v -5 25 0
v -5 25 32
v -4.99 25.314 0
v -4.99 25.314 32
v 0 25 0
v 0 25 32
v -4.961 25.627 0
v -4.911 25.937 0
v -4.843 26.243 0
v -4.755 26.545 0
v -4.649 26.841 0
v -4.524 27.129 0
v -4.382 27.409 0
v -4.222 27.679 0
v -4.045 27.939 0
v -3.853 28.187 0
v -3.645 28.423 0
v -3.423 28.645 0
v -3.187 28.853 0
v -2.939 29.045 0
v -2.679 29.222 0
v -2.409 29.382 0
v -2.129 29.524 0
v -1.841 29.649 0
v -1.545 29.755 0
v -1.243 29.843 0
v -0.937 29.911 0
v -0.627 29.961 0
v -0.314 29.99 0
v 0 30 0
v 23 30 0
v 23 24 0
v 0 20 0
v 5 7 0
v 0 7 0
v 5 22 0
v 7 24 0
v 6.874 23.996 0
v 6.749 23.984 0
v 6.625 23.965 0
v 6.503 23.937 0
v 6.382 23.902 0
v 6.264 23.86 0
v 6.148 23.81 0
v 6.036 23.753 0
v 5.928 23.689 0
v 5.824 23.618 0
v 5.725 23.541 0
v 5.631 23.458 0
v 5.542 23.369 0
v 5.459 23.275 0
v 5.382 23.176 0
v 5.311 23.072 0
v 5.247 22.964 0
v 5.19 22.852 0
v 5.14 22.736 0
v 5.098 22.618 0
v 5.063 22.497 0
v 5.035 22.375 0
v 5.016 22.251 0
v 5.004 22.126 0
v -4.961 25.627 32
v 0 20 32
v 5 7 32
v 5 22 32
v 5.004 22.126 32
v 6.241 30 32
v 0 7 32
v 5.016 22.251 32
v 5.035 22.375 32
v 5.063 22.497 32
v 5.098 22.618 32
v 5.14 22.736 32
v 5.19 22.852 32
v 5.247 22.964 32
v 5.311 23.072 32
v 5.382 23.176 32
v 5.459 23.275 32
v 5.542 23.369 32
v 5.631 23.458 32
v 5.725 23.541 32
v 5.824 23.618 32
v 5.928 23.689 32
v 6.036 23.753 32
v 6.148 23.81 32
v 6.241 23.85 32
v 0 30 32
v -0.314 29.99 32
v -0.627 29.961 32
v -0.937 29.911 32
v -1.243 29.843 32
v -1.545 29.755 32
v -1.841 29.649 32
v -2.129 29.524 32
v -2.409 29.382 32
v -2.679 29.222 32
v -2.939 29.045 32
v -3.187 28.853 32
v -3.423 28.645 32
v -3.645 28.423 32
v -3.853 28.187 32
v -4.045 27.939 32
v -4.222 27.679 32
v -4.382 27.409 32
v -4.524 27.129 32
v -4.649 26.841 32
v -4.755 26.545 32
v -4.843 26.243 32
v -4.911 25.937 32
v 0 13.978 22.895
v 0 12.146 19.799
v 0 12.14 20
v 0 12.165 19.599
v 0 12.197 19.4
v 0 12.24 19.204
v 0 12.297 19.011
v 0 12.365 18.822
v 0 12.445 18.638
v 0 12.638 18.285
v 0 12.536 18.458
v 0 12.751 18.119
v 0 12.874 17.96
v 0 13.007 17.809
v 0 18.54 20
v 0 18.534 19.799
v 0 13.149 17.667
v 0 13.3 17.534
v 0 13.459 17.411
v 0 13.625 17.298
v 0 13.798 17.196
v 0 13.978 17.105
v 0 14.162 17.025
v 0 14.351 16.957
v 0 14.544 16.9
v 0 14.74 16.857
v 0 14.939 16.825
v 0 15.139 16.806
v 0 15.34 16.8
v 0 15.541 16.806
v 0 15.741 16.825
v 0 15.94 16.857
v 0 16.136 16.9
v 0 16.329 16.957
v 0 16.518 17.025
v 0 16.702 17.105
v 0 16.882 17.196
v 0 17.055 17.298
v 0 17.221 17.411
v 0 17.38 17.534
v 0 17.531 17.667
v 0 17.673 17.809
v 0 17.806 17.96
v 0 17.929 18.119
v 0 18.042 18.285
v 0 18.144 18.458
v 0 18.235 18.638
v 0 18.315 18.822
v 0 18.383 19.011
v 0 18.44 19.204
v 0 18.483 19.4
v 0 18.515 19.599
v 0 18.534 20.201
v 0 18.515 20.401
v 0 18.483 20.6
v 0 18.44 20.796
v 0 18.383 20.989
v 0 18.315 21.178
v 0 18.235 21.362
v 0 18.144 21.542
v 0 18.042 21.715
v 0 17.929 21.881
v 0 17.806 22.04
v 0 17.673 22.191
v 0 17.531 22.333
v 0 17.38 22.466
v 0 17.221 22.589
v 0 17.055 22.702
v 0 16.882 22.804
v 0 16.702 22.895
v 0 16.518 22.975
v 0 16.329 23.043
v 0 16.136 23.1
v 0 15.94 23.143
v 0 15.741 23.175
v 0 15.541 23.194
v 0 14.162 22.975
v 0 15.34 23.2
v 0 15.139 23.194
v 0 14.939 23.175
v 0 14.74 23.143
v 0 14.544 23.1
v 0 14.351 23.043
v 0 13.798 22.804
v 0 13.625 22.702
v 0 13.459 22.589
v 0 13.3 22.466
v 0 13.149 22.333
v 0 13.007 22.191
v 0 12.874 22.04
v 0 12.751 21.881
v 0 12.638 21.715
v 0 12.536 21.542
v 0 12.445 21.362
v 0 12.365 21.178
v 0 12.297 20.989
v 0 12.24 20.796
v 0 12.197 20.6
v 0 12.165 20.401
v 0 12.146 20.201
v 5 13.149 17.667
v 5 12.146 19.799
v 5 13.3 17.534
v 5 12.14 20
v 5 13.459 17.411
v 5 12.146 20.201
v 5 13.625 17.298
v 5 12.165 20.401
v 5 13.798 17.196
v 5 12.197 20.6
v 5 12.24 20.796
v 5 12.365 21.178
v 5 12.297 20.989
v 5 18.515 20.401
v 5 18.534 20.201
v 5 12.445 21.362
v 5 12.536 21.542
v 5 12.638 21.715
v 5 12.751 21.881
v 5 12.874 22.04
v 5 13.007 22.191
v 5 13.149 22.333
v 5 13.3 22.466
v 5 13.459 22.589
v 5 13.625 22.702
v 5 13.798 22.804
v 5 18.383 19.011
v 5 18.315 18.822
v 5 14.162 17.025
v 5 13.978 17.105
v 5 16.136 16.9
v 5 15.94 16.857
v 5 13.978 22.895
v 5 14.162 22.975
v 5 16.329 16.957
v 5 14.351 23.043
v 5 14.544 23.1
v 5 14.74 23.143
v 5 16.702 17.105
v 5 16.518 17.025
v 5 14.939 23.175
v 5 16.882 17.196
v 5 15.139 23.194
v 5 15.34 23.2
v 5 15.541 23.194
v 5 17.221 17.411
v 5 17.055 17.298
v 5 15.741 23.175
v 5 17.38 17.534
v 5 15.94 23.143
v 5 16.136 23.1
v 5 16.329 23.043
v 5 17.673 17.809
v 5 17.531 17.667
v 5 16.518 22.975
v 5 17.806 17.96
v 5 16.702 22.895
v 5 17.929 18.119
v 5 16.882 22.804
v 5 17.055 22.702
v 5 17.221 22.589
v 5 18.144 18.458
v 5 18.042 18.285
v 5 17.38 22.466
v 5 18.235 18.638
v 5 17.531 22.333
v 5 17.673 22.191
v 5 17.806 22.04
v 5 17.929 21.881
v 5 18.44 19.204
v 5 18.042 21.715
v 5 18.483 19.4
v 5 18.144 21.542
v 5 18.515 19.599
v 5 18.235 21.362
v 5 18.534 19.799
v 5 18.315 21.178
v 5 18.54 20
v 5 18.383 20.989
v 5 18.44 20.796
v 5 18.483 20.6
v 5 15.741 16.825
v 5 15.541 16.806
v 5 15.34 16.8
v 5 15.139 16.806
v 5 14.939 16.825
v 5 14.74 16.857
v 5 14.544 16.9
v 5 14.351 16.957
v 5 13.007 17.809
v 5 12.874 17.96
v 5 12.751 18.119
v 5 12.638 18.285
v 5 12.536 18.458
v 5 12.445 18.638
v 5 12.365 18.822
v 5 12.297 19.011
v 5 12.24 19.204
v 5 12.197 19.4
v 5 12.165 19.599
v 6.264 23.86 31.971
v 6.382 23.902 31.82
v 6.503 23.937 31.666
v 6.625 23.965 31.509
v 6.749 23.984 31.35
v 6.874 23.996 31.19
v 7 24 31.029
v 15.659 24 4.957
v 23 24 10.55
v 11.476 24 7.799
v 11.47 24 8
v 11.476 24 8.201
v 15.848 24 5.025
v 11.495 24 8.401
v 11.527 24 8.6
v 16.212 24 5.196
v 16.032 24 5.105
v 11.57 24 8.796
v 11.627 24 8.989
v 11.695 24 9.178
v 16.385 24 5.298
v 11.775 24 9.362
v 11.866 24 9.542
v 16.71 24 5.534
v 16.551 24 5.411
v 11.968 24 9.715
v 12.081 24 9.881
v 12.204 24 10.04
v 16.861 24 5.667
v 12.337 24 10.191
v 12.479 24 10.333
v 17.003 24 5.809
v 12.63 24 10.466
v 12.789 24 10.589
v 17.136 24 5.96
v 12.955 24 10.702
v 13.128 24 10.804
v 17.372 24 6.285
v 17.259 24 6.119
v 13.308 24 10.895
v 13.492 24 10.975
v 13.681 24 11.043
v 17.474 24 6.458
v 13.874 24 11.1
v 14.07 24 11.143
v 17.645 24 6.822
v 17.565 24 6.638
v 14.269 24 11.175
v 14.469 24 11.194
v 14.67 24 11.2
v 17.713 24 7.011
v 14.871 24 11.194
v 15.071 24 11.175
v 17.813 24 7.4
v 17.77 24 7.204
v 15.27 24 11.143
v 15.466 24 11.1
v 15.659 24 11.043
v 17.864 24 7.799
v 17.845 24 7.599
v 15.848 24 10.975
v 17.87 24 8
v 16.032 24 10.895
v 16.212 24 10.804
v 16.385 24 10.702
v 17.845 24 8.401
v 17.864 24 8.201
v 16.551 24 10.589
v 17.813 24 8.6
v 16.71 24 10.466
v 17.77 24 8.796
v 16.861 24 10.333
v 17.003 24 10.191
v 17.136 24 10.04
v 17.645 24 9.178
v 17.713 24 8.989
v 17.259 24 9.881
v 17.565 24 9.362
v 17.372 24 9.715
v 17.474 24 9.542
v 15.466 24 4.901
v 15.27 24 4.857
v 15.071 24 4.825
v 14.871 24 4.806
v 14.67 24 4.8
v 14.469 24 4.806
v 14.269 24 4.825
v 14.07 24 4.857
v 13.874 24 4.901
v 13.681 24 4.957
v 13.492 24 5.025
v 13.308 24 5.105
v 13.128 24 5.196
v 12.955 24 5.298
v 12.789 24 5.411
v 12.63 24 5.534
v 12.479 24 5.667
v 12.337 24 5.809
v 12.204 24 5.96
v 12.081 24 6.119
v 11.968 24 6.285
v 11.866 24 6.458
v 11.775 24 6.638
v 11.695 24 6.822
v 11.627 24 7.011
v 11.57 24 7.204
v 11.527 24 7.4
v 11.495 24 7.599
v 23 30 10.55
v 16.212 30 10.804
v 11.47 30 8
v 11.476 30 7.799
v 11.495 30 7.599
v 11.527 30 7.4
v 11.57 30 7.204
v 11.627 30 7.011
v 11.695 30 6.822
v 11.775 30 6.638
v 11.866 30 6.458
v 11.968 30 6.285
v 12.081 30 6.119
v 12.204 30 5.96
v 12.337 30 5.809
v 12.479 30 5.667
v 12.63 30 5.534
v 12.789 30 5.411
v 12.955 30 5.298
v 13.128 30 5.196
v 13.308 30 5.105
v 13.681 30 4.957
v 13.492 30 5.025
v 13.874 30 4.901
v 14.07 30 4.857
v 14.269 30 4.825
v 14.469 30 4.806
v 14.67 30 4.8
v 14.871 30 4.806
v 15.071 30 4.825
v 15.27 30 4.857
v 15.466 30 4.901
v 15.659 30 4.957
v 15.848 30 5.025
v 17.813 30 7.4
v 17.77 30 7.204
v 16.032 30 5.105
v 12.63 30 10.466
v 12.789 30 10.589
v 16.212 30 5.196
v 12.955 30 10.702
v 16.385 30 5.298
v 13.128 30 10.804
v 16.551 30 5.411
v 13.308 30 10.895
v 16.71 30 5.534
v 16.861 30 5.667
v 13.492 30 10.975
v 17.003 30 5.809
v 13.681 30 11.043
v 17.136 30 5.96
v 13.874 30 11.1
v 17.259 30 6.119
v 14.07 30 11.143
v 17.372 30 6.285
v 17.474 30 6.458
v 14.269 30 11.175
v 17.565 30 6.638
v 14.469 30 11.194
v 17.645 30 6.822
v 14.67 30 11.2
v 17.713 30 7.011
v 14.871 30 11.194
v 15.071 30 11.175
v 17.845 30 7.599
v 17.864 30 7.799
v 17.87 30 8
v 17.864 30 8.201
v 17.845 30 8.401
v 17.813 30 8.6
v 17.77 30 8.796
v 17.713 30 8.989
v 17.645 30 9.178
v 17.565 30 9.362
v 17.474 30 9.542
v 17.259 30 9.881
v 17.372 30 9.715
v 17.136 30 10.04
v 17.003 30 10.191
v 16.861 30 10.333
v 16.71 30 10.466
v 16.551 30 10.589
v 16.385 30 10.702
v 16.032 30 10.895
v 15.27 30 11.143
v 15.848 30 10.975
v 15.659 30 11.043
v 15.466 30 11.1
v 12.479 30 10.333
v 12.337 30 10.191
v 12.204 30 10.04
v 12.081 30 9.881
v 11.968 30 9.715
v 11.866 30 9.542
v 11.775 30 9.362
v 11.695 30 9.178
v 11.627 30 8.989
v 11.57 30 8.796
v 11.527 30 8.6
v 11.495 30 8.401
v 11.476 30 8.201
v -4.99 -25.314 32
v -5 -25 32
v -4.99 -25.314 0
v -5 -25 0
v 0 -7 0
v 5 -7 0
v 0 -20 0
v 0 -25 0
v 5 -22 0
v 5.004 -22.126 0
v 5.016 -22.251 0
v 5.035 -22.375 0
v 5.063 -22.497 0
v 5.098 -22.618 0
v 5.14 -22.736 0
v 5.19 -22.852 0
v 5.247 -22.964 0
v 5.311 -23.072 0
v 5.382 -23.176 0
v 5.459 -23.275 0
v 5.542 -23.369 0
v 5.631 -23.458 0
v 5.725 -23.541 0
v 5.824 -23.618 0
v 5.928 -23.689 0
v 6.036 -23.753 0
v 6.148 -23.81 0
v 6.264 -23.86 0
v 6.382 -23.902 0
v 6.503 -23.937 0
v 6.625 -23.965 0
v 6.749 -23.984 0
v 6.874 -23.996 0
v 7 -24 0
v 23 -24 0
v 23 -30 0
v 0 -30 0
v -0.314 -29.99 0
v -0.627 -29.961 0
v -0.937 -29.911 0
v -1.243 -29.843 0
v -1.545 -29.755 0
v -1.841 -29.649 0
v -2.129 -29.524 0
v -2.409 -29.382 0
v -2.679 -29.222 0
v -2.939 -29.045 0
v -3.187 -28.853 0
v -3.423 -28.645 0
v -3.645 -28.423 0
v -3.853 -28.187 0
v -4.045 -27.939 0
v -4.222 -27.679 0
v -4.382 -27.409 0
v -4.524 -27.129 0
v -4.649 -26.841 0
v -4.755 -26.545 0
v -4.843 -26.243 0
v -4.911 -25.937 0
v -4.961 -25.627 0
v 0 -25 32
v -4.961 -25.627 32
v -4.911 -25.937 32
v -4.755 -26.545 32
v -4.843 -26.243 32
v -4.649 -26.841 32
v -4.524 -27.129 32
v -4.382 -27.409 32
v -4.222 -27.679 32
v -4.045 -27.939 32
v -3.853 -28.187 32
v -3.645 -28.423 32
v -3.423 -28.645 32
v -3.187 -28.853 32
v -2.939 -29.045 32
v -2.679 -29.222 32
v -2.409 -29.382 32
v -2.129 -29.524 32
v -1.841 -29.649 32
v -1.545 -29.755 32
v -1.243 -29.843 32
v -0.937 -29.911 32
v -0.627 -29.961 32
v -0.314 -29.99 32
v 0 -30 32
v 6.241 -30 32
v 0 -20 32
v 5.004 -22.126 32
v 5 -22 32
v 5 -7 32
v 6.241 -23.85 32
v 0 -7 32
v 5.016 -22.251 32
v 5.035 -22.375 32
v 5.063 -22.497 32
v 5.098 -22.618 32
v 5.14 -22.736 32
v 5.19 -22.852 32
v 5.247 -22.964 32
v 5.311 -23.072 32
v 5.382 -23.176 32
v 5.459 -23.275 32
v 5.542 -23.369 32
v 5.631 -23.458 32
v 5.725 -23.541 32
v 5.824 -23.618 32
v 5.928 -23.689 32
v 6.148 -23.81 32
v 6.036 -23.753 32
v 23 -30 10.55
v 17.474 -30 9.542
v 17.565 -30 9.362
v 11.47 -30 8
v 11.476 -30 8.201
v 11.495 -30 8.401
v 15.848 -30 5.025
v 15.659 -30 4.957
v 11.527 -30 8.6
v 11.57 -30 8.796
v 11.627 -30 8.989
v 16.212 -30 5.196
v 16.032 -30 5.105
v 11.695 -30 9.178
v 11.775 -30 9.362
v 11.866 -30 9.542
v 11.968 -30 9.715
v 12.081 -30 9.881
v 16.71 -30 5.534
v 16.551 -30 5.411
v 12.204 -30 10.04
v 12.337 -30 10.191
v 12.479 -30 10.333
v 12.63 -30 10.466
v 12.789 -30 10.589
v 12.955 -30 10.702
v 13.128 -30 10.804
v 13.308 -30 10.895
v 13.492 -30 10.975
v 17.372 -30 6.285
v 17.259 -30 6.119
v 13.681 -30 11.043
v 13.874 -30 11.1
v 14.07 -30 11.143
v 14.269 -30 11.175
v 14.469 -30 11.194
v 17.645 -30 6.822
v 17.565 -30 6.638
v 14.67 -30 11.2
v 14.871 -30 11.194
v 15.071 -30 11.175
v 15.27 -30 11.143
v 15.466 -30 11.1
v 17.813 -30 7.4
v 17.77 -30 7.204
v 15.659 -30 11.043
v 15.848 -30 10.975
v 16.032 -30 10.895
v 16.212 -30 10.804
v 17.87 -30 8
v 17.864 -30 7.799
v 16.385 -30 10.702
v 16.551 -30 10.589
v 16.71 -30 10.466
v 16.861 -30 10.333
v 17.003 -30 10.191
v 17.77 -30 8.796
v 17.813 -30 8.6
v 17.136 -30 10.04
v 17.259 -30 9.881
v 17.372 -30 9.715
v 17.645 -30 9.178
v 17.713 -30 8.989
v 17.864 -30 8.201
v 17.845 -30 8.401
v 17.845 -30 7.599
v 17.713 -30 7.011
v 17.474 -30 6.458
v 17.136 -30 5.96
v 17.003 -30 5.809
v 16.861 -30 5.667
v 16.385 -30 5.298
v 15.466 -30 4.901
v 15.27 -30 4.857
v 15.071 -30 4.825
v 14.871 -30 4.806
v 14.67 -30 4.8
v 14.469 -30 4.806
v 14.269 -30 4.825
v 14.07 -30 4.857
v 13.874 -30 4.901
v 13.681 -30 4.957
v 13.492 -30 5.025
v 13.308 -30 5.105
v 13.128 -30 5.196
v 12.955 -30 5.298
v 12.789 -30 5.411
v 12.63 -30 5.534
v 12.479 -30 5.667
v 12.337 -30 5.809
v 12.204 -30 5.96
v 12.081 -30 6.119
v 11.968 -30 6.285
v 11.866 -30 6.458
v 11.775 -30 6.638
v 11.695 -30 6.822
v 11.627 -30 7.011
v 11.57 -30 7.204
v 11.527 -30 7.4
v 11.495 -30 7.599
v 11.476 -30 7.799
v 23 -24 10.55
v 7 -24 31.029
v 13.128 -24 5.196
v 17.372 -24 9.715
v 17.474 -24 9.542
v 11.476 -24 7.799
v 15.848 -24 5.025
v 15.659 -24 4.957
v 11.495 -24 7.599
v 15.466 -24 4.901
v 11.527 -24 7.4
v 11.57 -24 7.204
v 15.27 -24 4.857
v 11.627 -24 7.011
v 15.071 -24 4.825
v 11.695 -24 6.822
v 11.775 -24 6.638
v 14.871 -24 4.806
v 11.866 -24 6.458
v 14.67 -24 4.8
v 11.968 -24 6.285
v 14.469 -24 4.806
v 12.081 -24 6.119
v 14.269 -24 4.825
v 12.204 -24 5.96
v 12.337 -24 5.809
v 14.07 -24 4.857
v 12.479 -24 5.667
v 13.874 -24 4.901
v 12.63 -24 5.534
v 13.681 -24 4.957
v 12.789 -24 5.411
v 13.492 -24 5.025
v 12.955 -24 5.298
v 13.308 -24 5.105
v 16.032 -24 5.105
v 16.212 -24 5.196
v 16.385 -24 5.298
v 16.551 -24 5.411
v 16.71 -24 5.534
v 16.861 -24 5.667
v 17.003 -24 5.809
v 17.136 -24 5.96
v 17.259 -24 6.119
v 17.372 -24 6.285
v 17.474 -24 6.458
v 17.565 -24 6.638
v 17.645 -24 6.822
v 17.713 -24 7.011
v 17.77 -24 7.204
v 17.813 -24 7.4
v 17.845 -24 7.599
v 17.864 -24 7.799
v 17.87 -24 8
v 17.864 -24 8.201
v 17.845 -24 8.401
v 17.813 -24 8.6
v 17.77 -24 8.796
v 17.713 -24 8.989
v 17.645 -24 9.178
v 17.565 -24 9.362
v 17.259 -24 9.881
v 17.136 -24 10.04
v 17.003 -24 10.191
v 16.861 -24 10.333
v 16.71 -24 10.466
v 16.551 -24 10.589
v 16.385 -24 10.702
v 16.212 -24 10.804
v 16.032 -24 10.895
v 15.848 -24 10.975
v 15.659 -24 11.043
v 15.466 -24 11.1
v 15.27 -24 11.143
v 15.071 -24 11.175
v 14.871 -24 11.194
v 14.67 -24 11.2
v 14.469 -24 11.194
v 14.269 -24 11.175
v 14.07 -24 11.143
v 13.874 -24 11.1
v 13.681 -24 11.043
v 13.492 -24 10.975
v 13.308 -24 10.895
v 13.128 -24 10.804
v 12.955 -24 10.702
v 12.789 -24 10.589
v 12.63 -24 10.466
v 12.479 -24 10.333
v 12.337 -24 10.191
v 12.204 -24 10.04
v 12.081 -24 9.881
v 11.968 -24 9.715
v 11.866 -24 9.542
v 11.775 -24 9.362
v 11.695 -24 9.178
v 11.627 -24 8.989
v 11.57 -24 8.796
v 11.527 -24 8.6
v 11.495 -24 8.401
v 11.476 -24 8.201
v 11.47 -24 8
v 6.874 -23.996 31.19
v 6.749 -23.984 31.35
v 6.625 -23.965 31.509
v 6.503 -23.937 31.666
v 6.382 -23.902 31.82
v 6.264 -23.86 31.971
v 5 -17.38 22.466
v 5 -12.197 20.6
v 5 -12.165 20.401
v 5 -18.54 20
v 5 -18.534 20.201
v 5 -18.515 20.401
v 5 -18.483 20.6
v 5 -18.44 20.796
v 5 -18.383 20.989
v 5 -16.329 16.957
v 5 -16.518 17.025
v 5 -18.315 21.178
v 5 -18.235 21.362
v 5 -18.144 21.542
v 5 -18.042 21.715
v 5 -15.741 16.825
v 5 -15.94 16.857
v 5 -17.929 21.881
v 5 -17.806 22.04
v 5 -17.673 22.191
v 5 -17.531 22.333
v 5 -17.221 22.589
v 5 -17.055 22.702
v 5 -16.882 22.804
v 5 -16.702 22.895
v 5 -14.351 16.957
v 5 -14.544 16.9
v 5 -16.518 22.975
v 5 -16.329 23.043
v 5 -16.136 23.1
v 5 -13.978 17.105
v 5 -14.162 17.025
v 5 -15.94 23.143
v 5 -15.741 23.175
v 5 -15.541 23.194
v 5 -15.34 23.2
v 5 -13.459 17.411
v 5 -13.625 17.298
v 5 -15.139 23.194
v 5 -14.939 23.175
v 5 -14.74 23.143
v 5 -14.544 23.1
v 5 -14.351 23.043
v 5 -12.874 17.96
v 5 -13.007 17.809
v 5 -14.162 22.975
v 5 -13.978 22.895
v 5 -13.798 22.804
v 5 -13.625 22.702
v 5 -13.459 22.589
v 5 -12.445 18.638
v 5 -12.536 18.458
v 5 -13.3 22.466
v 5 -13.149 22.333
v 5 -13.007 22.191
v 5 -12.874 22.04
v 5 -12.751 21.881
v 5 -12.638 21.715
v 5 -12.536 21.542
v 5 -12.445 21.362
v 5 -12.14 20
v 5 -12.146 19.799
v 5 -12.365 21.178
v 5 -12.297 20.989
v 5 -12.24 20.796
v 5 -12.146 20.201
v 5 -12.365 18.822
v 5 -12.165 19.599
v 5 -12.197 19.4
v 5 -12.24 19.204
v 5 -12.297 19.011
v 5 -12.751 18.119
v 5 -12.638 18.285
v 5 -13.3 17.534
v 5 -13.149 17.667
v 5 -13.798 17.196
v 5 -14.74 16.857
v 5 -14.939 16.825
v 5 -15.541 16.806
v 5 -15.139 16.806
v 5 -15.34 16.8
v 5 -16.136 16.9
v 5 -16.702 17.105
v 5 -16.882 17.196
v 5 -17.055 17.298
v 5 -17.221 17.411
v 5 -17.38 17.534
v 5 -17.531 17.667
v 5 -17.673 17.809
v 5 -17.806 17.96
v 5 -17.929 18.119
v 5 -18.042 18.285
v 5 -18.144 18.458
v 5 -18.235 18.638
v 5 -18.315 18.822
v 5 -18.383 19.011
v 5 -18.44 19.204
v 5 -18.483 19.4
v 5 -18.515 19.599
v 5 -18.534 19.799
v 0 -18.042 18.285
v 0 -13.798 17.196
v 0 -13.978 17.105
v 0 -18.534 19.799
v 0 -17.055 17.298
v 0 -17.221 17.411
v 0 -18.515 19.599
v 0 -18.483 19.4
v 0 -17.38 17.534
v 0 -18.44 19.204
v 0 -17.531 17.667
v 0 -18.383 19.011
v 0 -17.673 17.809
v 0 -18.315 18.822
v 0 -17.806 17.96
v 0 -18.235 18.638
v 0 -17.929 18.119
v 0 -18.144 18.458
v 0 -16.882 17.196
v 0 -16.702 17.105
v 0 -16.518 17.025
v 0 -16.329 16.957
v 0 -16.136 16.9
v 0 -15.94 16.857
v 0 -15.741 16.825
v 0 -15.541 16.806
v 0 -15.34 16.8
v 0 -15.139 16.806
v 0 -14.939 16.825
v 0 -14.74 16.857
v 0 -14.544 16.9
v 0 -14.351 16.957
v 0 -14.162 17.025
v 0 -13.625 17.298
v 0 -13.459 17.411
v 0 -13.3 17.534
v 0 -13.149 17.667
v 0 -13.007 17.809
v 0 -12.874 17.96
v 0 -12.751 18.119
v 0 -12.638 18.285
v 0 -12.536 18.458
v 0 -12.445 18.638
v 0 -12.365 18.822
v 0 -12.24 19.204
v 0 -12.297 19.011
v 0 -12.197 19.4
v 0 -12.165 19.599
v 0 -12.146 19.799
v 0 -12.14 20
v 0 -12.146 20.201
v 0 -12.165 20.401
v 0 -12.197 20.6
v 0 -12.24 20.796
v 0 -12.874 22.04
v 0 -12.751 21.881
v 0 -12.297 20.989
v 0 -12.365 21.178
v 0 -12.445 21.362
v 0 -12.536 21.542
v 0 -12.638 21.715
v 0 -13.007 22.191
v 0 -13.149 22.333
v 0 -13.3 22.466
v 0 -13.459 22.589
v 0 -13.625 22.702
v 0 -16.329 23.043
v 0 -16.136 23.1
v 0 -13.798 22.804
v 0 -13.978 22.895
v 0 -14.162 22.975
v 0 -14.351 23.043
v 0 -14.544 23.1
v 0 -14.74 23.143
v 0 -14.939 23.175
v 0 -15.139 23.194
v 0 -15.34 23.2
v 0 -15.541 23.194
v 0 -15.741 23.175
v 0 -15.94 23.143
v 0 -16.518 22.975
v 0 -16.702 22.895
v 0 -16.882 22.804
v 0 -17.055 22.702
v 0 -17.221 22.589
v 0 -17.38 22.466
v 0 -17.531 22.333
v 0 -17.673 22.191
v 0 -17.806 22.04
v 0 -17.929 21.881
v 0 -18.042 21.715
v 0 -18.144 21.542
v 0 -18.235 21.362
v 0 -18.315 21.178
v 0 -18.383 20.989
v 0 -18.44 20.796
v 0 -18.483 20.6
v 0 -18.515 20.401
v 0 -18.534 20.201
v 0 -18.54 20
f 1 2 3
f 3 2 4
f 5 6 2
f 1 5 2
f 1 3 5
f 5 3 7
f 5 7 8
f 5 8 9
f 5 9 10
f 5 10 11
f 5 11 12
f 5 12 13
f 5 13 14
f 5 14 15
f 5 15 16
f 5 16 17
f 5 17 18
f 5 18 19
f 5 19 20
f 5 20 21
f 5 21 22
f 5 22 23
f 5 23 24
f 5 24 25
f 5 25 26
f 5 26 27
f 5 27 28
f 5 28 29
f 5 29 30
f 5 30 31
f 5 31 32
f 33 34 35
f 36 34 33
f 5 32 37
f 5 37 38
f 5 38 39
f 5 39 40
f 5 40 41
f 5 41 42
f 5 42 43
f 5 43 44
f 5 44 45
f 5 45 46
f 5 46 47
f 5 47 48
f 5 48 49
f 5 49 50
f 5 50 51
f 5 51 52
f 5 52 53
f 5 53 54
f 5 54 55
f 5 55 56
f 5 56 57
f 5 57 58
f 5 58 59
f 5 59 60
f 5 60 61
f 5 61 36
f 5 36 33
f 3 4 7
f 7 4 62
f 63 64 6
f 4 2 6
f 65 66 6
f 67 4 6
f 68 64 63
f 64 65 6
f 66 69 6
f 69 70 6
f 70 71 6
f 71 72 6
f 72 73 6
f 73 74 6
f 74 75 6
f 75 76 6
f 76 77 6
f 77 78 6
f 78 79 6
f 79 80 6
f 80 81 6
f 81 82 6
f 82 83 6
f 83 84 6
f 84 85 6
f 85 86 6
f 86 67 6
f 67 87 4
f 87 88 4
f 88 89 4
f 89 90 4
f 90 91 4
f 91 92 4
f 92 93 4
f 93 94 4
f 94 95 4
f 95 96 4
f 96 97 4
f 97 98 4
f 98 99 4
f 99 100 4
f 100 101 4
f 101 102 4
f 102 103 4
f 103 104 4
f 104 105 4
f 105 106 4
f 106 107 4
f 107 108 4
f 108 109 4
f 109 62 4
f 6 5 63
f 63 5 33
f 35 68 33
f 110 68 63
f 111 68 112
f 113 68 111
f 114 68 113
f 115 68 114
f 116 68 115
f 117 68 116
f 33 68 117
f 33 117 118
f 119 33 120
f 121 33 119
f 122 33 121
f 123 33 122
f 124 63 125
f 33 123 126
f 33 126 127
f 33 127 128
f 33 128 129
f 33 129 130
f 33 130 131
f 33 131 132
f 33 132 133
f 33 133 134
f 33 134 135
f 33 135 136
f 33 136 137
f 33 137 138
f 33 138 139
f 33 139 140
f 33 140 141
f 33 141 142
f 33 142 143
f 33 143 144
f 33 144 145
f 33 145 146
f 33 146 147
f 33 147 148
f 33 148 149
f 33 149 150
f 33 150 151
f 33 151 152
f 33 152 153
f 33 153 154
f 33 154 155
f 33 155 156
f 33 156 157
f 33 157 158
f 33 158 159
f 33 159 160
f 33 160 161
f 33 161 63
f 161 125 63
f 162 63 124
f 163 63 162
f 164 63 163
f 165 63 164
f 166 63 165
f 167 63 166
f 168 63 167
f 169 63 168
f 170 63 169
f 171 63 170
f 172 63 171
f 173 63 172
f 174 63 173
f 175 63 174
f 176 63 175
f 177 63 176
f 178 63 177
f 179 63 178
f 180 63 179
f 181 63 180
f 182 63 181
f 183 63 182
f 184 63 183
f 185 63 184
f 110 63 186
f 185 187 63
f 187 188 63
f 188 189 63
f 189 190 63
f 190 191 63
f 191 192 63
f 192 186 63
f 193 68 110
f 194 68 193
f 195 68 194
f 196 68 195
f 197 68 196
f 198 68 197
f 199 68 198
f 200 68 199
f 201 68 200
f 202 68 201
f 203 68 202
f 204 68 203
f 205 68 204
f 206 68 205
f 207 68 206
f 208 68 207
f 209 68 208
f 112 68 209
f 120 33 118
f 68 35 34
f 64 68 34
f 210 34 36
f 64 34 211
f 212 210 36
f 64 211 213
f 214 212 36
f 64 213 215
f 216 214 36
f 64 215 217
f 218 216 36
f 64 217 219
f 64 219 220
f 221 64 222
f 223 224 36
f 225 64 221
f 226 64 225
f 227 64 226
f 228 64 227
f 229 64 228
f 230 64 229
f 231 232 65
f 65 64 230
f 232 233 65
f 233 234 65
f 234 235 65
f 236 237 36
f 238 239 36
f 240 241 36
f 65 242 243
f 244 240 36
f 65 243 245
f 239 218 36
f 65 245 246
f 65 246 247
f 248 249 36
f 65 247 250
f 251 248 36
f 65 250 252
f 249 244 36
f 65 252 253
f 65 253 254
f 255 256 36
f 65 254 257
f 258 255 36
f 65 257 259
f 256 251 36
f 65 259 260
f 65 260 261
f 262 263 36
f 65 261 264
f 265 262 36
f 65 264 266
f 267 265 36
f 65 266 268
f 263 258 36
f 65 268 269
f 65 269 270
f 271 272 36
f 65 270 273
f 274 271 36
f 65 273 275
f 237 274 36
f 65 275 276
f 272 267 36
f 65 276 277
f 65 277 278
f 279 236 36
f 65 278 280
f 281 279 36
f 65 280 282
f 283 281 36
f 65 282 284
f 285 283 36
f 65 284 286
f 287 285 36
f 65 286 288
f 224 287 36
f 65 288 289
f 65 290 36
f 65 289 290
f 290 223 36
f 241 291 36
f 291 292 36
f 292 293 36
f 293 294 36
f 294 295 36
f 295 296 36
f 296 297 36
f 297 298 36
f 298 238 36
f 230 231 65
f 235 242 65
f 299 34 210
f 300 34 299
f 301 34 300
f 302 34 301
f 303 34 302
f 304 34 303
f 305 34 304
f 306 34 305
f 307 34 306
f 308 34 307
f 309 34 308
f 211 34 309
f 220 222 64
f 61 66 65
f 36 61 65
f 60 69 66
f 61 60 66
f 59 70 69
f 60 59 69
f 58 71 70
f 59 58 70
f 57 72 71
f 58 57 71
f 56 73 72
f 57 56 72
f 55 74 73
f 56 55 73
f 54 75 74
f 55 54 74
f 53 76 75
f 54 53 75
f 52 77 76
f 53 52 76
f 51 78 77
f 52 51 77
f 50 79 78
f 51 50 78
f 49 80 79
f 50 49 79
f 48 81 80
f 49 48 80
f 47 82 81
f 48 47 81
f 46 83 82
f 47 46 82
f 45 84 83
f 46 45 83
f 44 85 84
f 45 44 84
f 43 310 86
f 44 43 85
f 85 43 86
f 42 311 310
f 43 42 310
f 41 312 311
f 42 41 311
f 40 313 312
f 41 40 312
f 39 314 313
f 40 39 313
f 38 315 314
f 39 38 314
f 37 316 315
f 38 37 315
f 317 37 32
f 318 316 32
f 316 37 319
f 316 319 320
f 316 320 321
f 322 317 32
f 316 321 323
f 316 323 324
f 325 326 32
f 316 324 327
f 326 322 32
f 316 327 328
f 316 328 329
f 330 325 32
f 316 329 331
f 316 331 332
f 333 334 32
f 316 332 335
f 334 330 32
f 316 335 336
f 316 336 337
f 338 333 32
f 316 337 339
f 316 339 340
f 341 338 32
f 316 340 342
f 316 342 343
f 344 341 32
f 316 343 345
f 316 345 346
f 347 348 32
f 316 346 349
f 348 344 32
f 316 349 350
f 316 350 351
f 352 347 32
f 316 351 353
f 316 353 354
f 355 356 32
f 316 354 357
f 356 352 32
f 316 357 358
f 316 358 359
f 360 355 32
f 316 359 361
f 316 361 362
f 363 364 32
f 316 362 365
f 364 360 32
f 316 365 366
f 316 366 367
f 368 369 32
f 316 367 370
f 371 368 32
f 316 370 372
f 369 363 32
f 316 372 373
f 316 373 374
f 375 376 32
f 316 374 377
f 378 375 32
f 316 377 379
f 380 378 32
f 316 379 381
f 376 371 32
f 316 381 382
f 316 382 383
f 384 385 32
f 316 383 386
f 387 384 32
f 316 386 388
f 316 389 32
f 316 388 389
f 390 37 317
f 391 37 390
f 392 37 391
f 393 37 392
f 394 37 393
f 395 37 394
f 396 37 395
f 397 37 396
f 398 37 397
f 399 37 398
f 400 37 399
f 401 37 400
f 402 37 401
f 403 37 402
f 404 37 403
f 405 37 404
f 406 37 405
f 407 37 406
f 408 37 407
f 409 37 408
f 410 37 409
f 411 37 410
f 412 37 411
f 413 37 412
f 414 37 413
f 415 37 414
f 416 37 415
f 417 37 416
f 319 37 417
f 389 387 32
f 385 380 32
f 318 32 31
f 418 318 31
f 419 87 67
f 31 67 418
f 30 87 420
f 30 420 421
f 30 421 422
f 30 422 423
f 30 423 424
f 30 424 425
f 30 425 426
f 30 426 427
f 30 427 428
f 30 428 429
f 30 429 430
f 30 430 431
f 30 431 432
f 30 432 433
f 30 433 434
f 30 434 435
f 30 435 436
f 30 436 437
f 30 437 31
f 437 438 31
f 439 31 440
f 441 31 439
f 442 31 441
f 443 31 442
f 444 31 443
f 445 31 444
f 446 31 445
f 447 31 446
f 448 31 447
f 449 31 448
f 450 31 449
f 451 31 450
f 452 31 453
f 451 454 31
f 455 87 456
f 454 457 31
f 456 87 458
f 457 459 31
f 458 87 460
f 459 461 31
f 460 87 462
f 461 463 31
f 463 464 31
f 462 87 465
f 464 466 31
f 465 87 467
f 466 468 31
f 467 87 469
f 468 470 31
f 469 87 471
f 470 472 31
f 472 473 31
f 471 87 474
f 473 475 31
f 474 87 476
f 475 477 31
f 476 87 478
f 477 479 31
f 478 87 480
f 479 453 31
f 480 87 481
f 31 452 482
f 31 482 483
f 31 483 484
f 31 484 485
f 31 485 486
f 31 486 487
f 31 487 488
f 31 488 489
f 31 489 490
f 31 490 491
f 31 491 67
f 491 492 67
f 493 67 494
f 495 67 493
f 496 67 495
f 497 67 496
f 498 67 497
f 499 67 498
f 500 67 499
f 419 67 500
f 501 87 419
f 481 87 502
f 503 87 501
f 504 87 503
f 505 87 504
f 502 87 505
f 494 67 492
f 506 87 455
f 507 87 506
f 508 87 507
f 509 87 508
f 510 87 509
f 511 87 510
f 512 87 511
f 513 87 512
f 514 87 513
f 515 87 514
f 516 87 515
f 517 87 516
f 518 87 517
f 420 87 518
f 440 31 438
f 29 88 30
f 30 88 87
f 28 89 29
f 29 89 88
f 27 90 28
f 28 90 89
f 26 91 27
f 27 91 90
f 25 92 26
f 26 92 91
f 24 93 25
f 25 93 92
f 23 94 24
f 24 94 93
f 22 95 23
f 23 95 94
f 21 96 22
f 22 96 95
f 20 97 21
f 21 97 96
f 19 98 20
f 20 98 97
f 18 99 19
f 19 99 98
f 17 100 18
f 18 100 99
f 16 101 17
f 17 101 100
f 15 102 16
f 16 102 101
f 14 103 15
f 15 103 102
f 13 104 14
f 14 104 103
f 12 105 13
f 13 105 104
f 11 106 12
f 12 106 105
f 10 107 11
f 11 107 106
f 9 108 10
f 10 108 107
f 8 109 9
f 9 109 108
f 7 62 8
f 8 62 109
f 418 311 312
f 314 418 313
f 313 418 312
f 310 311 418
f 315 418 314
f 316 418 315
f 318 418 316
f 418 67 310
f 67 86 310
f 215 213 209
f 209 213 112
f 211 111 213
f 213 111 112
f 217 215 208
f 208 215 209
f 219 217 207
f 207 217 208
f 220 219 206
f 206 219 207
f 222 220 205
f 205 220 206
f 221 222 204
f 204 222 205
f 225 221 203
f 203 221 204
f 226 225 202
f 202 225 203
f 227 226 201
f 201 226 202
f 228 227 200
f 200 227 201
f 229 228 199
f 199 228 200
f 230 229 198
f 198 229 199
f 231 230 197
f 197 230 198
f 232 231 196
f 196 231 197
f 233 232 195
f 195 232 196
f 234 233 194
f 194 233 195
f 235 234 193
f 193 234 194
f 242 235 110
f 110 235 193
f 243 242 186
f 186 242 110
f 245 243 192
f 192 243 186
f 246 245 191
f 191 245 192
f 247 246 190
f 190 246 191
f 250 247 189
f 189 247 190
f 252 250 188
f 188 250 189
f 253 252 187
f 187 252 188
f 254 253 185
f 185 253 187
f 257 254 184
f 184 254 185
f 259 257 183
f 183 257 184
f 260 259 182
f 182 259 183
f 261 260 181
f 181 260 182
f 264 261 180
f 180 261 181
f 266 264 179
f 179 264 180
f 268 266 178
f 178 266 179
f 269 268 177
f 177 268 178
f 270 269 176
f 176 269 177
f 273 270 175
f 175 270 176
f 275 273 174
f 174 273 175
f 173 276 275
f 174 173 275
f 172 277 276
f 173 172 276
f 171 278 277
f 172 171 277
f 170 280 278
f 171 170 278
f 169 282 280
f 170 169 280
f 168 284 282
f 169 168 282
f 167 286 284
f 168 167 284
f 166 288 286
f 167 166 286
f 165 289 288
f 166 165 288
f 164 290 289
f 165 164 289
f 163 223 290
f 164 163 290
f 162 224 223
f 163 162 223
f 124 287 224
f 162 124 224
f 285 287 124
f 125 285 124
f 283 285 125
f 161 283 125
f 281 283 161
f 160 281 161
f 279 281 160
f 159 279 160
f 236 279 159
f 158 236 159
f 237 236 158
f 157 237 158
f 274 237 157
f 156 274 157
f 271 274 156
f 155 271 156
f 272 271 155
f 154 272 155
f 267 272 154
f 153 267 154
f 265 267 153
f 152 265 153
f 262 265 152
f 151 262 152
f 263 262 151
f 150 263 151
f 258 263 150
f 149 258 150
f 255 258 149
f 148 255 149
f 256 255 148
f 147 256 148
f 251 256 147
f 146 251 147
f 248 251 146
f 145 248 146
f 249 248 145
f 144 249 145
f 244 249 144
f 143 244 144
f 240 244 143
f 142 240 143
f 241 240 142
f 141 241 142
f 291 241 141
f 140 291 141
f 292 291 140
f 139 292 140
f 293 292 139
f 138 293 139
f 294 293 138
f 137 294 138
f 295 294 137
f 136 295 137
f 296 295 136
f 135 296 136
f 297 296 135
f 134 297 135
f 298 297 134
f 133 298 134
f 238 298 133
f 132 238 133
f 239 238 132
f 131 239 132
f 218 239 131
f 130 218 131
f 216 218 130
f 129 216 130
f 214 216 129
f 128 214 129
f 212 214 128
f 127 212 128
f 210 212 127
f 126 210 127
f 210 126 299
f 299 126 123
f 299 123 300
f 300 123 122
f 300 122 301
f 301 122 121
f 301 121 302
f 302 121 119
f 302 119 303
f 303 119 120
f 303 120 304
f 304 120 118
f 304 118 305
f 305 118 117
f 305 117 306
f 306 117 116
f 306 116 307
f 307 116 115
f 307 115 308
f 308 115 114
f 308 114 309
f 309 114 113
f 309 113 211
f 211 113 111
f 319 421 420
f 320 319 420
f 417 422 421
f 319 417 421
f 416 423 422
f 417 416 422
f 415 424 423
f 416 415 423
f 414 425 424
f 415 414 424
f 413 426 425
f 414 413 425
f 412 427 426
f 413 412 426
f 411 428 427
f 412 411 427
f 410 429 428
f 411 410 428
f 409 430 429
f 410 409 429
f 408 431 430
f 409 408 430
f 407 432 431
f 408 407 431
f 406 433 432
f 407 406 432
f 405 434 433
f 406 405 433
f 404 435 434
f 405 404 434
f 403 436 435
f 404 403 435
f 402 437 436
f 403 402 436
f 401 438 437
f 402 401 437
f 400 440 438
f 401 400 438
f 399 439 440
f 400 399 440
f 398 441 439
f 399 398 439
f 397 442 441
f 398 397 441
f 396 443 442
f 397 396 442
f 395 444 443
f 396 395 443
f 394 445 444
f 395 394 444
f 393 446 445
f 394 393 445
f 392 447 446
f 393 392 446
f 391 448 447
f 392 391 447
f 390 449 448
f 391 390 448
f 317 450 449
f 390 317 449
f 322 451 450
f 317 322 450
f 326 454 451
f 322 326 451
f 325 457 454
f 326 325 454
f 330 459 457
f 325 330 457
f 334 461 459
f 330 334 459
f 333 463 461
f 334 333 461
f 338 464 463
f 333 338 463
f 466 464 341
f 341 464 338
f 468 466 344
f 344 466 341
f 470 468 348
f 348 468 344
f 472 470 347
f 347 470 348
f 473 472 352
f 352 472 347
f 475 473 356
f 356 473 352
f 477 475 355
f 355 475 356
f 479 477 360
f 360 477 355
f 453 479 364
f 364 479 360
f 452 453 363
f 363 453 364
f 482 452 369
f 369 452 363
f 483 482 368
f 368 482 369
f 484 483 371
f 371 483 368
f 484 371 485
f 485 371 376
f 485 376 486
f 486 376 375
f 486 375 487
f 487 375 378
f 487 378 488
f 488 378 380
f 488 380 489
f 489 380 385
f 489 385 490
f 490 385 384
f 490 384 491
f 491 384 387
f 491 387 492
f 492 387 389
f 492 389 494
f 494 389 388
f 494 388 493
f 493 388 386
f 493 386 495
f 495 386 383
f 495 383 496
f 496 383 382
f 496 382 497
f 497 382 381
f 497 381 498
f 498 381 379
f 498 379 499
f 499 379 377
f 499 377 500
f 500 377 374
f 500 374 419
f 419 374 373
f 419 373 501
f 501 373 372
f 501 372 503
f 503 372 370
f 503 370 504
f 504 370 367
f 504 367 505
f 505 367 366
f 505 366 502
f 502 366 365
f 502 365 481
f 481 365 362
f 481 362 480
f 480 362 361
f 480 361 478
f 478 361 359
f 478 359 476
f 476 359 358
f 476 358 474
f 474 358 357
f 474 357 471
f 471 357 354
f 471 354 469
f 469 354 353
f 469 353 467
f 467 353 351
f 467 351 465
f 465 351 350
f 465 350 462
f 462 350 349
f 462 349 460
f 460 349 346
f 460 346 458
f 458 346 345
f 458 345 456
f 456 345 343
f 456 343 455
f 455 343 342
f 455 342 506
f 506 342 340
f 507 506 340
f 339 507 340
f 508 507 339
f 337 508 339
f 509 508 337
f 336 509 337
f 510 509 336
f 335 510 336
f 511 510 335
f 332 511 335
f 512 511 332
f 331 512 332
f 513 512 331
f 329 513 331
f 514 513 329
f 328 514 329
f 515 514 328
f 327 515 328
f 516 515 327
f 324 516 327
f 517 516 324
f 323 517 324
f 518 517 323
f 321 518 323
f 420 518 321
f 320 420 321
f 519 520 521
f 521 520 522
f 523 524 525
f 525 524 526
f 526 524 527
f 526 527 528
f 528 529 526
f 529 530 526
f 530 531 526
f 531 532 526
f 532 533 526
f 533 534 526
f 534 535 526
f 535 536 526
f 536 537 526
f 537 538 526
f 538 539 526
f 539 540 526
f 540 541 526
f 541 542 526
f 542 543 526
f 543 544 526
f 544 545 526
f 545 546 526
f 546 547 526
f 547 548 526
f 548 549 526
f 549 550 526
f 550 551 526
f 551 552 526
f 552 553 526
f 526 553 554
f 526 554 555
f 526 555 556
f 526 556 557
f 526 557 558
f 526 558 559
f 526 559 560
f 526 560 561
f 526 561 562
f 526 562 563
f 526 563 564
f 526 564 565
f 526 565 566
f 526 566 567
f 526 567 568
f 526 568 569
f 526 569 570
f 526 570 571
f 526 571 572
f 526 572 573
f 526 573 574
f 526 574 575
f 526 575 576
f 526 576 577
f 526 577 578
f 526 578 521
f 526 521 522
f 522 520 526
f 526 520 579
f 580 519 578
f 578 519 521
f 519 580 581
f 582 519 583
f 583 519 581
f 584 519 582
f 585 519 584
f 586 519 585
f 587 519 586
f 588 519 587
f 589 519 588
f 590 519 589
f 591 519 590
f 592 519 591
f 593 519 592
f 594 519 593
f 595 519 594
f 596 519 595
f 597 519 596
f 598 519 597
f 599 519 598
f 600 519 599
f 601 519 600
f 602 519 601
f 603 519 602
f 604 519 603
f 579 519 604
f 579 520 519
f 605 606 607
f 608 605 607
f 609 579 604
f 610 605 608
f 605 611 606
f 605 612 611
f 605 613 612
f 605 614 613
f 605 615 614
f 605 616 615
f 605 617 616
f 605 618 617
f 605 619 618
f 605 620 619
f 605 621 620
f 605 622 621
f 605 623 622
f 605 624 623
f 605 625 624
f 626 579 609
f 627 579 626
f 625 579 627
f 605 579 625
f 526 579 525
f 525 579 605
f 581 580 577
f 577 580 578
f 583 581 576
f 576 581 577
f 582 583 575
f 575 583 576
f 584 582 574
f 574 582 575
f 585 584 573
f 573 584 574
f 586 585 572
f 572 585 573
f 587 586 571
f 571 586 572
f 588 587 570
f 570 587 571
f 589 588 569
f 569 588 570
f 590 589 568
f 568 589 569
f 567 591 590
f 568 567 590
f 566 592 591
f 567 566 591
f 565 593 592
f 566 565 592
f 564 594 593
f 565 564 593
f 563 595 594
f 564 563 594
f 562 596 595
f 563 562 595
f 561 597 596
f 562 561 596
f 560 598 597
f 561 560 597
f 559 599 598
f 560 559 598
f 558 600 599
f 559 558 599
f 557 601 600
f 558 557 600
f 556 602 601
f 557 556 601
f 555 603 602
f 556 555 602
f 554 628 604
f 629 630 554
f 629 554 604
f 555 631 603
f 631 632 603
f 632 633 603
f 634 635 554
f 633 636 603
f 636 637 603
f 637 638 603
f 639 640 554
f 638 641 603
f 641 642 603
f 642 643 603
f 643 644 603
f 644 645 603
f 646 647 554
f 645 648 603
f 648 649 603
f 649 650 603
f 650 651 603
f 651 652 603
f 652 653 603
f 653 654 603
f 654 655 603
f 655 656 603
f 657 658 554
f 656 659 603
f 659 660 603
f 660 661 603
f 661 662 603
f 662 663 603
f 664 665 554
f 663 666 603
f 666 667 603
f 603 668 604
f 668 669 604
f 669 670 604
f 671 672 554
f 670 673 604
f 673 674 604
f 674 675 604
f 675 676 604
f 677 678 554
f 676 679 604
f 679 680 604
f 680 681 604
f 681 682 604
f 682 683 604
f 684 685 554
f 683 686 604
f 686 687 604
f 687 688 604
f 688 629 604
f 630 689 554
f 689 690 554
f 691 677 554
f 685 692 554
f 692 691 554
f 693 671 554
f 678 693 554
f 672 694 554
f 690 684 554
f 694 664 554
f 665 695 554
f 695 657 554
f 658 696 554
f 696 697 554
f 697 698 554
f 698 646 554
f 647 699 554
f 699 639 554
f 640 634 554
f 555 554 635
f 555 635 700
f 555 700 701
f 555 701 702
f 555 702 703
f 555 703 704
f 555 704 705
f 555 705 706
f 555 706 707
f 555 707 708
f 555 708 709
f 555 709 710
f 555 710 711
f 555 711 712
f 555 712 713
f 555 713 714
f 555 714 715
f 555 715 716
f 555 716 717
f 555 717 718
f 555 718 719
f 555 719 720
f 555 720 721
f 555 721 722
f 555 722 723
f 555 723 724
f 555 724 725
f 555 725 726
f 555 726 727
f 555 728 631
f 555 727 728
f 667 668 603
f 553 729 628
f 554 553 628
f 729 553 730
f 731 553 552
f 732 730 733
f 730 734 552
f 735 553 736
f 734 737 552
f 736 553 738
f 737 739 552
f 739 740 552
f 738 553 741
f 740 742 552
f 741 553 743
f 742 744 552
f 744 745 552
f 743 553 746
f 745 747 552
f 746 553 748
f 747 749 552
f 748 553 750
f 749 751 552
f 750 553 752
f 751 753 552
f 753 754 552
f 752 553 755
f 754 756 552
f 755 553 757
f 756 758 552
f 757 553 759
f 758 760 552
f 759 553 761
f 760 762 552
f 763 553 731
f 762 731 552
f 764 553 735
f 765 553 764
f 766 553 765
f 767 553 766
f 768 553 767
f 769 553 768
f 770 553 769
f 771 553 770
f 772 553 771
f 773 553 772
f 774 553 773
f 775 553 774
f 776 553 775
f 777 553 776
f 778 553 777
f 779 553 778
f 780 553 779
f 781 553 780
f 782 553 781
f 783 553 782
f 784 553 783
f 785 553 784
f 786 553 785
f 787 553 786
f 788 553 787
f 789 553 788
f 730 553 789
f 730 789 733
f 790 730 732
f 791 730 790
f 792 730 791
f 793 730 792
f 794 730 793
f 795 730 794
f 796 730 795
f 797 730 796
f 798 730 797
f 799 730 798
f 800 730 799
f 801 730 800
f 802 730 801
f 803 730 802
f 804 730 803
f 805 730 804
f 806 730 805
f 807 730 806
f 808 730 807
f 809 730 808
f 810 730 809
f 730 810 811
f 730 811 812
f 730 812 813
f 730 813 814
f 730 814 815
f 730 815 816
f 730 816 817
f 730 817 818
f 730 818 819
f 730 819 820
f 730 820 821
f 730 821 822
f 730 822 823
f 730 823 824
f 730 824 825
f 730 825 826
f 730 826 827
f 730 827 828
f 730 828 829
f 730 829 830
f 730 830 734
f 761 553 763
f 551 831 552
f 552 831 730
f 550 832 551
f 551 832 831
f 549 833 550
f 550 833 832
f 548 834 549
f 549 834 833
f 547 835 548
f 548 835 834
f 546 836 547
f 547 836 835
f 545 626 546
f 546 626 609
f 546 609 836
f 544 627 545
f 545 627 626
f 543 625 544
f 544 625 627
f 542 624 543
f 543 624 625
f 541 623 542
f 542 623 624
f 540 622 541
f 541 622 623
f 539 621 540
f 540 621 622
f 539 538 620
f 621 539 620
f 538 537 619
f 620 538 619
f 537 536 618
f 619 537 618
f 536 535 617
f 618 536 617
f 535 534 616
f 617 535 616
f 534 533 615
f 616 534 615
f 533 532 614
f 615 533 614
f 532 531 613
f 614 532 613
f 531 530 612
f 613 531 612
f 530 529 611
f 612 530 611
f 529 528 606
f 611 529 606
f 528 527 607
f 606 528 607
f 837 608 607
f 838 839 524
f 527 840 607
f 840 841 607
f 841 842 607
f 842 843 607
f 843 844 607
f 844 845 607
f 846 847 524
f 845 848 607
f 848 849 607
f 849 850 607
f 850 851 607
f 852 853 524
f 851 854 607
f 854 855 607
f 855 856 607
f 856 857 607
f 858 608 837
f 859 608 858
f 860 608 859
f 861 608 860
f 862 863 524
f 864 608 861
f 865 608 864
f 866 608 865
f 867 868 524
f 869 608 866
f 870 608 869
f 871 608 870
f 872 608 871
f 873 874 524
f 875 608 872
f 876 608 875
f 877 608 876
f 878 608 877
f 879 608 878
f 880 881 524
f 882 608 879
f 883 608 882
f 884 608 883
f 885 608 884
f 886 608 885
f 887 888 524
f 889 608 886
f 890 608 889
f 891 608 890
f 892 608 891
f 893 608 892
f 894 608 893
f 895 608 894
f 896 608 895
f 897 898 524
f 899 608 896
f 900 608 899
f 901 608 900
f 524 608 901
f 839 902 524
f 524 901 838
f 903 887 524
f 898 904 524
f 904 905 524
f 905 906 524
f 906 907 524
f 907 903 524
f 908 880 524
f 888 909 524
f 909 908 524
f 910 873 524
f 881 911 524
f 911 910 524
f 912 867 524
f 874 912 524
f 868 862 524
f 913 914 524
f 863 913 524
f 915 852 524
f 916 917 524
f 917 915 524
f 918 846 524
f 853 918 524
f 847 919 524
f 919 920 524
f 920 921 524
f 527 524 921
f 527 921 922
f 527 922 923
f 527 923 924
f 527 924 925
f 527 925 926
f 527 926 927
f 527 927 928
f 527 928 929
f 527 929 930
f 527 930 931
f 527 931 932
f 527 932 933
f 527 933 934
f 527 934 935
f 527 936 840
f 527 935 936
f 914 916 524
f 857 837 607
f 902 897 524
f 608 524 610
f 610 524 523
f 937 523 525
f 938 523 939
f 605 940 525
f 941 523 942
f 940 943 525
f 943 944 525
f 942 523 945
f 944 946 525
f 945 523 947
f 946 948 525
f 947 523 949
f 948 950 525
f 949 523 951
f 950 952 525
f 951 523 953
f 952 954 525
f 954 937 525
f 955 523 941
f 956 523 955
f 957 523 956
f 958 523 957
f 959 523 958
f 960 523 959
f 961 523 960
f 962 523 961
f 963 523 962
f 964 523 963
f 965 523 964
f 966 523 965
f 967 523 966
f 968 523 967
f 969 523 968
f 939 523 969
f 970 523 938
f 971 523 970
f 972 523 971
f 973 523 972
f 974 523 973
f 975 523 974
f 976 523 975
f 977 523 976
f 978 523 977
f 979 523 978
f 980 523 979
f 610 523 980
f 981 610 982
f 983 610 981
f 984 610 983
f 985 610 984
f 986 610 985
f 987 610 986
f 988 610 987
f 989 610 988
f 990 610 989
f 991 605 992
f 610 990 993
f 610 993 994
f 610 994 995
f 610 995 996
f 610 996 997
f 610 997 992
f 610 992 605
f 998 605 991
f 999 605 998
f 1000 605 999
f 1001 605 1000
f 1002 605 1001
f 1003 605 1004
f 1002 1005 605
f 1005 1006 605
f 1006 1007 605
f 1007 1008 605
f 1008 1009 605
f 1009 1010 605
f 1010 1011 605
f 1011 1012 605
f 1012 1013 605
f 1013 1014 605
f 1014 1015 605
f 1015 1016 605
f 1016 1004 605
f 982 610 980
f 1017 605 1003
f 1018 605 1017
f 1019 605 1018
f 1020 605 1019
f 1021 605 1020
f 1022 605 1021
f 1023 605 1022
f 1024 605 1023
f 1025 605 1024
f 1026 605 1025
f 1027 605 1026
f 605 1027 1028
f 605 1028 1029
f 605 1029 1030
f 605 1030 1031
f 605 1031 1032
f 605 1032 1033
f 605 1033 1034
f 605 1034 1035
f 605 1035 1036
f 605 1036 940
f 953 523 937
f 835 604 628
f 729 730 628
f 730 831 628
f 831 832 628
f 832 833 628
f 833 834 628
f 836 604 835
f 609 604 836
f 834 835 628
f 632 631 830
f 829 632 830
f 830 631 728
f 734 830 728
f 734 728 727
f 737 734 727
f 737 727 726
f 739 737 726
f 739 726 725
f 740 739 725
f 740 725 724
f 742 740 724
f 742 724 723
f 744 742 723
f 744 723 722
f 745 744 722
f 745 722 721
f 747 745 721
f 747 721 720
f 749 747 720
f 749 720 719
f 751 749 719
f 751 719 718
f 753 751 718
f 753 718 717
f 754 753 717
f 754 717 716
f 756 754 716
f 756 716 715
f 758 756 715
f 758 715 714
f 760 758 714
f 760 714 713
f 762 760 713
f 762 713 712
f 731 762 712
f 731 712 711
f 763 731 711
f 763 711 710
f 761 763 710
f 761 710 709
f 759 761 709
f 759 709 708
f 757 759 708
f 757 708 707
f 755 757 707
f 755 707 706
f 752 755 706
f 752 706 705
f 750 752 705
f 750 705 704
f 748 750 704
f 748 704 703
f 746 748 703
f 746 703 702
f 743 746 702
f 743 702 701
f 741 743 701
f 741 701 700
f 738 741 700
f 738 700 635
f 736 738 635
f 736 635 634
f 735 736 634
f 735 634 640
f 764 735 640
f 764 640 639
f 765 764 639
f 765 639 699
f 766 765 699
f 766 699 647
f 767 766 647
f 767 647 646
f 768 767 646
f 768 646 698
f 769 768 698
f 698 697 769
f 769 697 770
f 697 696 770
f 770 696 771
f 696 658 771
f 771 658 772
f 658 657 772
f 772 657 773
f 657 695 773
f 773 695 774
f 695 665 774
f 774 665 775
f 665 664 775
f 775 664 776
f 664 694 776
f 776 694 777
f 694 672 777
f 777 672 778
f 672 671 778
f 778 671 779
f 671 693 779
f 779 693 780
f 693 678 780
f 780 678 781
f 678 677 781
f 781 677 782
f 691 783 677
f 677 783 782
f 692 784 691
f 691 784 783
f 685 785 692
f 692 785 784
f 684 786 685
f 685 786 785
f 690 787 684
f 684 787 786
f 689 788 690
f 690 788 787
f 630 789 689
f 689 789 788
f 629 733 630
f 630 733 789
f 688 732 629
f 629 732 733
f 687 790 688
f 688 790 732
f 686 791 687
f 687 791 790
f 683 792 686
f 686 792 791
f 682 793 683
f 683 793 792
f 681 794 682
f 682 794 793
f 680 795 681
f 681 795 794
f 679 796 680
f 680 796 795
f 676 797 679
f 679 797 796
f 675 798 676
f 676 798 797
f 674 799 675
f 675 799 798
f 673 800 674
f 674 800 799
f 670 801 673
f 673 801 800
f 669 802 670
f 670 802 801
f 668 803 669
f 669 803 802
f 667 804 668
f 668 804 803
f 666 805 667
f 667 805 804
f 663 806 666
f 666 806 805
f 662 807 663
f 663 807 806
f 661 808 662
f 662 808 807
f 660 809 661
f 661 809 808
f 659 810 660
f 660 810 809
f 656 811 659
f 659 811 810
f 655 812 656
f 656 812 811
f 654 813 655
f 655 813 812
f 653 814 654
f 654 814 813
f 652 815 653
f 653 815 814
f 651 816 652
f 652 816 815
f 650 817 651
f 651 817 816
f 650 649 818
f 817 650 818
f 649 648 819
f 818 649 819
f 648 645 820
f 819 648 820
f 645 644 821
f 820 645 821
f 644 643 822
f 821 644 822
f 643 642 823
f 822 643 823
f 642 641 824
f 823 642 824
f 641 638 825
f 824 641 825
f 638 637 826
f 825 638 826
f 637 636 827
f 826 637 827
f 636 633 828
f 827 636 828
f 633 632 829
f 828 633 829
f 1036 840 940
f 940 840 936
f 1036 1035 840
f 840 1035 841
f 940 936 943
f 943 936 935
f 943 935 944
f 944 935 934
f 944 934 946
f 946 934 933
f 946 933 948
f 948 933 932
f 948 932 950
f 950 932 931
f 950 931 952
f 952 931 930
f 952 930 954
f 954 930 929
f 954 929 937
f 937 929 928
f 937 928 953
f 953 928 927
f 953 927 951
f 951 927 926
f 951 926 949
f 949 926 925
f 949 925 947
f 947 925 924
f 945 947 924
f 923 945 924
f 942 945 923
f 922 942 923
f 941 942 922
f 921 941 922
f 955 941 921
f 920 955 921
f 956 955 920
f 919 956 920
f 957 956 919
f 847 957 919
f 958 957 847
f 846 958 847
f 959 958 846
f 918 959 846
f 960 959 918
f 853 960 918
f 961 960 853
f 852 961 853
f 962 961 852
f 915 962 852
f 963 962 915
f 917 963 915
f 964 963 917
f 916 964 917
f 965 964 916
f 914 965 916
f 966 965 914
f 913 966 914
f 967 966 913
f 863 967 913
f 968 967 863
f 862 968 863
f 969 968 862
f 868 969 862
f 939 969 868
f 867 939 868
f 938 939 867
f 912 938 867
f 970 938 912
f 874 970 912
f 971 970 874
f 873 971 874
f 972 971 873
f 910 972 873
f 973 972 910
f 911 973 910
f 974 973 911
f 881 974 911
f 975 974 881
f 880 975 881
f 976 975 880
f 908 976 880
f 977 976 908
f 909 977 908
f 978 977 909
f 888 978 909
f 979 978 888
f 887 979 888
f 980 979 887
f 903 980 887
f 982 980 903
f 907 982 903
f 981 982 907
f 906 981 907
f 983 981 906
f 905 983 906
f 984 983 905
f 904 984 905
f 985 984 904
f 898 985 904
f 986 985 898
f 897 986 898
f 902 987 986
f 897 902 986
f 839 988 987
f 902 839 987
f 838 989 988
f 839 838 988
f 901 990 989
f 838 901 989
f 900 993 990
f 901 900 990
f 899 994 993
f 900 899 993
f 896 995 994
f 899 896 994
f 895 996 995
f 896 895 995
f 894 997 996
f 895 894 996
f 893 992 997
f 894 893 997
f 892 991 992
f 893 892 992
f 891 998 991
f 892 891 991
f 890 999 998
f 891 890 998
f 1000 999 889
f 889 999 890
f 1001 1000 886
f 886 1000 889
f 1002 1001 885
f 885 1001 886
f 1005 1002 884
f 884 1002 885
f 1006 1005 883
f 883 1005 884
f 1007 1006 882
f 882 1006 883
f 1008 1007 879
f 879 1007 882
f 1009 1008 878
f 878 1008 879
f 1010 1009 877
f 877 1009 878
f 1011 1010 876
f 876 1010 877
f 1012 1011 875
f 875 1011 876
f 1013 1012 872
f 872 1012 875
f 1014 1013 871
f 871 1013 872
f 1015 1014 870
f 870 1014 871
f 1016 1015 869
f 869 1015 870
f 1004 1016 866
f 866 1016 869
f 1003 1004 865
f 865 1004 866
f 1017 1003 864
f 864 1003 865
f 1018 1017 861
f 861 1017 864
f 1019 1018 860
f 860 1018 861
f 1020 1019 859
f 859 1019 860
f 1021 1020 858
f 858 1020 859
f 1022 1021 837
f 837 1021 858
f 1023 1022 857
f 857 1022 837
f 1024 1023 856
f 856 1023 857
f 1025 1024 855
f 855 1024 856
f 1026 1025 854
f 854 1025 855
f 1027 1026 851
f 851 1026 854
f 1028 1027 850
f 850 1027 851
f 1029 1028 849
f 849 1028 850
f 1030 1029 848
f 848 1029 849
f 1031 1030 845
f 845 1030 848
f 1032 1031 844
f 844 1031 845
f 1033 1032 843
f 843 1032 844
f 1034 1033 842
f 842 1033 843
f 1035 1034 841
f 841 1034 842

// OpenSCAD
// Created from Code_Diagonal (x2).stl
// https://github.com/Mecan0/Code
// By J.Rodigo (www.jra.so)
// Licence Creative commons atribution & share alike.

module pieza(){
	difference () {
		union() {
			translate([0, -23, 0])
			cube([5, 23, 32]);

			translate([0, -6, 0])
			cube([23, 6, 32]);

			translate([5, -8, 0])
			cube([2, 2, 32]);

			translate([0, -5, 0])
			cylinder(h = 32, r = 5, $fn=100);
		}	
		union() {
			translate([-5, -10, -1])
			cube([5, 5, 34]);

			translate([7, -8, -1])
			cylinder(h = 34, r = 2, $fn=100);

			translate([23, -7, 10.55])
			rotate( 38, [0, -1, 0])
			cube([18, 8, 34]);

			translate([-1, -14.66, 20])
			rotate( 90, [0, 1, 0])
			cylinder(h = 7, r = 3.2, $fn=100);

			translate([14.67, 1, 8])
			rotate( 90, [1, 0, 0])
			cylinder(h = 8, r = 3.2, $fn=100);
		}	
 
	}
}

// Pieza normal
translate([0, 30, 0])
pieza();

// Pieza espejo
translate([0, -30, 0])
mirror([ 0, 1, 0 ]) 
pieza();
